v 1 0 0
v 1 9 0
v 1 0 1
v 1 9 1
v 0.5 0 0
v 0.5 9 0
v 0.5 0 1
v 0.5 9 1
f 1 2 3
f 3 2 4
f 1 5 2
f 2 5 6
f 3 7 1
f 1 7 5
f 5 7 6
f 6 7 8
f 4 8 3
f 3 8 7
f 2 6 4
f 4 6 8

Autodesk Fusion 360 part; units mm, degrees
sketch "Sketch1" plane through (0, 0, 0) normal (0, 0, 1) x (1, 0, 0)
  line L0 (0, 0) -> (4, 0)
  line L1 (4, 0) -> (4, 9)
  line L2 (4, 9) -> (0, 9)
  line L3 (0, 9) -> (0, 0)
  line L4 (4, 9) -> (3, 8.5)
  line L5 (3, 8.5) -> (4, 8)
  line L6 (4, 8) -> (3, 7.5)
  line L7 (3, 7.5) -> (4, 7)
  line L8 (4, 7) -> (3, 6.5)
  line L9 (3, 6.5) -> (4, 6)
  line L10 (4, 6) -> (3, 5.5)
  line L11 (3, 5.5) -> (4, 5)
  line L12 (4, 5) -> (3, 4.5)
  line L13 (3, 4.5) -> (4, 4)
  line L14 (4, 4) -> (3, 3.5)
  line L15 (3, 3.5) -> (4, 3)
  line L16 (4, 3) -> (3, 2.5)
  line L17 (3, 2.5) -> (4, 2)
  line L18 (4, 2) -> (3, 1.5)
  line L19 (3, 1.5) -> (4, 1)
  line L20 (4, 1) -> (3, 0.5)
  line L21 (3, 0.5) -> (4, 0)
  dimension "d1" = 4
  dimension "d2" = 9
extrude "Extrude1" add sketch "Sketch1" along normal blind 1 contours L0 L2 L3 L4 L5 L6 L7 L8 L9 L10 L11 L12 L13 L14 L15 L16 L17 L18 L19 L20 L21
extrude "Extrude2" cut 1 faces at (0, 6, 0.3333) along direction (1, 0, 0) blind 0.5
sketch "Sketch2" plane through (0, 0, 1) normal (0, 0, 1) x (-1, 0, 0)
  line L0 (-0.5, -9) -> (-0.5, 0)
  line L1 (-0.5, 0) -> (-4, 0)
  line L2 (-4, 0) -> (-3, -0.5)
  line L3 (-3, -0.5) -> (-4, -1)
  line L4 (-4, -1) -> (-3, -1.5)
  line L5 (-3, -1.5) -> (-4, -2)
  line L6 (-4, -2) -> (-3, -2.5)
  line L7 (-3, -2.5) -> (-4, -3)
  line L8 (-4, -3) -> (-3, -3.5)
  line L9 (-3, -3.5) -> (-4, -4)
  line L10 (-4, -4) -> (-3, -4.5)
  line L11 (-3, -4.5) -> (-4, -5)
  line L12 (-4, -5) -> (-3, -5.5)
  line L13 (-3, -5.5) -> (-4, -6)
  line L14 (-4, -6) -> (-3, -6.5)
  line L15 (-3, -6.5) -> (-4, -7)
  line L16 (-4, -7) -> (-3, -7.5)
  line L17 (-3, -7.5) -> (-4, -8)
  line L18 (-4, -8) -> (-3, -8.5)
  line L19 (-3, -8.5) -> (-4, -9)
  line L20 (-4, -9) -> (-0.5, -9)
  line L21 (-0.5, -9) -> (-1, -9)
  line L22 (-1, -9) -> (-1, 0)
  line L23 (-1, 0) -> (-0.5, 0)
  line L24 (-0.5, 0) -> (-0.5, -9)
  dimension "d7" = 0.5
extrude "Extrude3" cut sketch "Sketch2" against normal blind 3.4 contours L1 L2 L3 L4 L5 L6 L7 L8 L9 L10 L11 L12 L13 L14 L15 L16 L17 L18 L19 L20 L22
